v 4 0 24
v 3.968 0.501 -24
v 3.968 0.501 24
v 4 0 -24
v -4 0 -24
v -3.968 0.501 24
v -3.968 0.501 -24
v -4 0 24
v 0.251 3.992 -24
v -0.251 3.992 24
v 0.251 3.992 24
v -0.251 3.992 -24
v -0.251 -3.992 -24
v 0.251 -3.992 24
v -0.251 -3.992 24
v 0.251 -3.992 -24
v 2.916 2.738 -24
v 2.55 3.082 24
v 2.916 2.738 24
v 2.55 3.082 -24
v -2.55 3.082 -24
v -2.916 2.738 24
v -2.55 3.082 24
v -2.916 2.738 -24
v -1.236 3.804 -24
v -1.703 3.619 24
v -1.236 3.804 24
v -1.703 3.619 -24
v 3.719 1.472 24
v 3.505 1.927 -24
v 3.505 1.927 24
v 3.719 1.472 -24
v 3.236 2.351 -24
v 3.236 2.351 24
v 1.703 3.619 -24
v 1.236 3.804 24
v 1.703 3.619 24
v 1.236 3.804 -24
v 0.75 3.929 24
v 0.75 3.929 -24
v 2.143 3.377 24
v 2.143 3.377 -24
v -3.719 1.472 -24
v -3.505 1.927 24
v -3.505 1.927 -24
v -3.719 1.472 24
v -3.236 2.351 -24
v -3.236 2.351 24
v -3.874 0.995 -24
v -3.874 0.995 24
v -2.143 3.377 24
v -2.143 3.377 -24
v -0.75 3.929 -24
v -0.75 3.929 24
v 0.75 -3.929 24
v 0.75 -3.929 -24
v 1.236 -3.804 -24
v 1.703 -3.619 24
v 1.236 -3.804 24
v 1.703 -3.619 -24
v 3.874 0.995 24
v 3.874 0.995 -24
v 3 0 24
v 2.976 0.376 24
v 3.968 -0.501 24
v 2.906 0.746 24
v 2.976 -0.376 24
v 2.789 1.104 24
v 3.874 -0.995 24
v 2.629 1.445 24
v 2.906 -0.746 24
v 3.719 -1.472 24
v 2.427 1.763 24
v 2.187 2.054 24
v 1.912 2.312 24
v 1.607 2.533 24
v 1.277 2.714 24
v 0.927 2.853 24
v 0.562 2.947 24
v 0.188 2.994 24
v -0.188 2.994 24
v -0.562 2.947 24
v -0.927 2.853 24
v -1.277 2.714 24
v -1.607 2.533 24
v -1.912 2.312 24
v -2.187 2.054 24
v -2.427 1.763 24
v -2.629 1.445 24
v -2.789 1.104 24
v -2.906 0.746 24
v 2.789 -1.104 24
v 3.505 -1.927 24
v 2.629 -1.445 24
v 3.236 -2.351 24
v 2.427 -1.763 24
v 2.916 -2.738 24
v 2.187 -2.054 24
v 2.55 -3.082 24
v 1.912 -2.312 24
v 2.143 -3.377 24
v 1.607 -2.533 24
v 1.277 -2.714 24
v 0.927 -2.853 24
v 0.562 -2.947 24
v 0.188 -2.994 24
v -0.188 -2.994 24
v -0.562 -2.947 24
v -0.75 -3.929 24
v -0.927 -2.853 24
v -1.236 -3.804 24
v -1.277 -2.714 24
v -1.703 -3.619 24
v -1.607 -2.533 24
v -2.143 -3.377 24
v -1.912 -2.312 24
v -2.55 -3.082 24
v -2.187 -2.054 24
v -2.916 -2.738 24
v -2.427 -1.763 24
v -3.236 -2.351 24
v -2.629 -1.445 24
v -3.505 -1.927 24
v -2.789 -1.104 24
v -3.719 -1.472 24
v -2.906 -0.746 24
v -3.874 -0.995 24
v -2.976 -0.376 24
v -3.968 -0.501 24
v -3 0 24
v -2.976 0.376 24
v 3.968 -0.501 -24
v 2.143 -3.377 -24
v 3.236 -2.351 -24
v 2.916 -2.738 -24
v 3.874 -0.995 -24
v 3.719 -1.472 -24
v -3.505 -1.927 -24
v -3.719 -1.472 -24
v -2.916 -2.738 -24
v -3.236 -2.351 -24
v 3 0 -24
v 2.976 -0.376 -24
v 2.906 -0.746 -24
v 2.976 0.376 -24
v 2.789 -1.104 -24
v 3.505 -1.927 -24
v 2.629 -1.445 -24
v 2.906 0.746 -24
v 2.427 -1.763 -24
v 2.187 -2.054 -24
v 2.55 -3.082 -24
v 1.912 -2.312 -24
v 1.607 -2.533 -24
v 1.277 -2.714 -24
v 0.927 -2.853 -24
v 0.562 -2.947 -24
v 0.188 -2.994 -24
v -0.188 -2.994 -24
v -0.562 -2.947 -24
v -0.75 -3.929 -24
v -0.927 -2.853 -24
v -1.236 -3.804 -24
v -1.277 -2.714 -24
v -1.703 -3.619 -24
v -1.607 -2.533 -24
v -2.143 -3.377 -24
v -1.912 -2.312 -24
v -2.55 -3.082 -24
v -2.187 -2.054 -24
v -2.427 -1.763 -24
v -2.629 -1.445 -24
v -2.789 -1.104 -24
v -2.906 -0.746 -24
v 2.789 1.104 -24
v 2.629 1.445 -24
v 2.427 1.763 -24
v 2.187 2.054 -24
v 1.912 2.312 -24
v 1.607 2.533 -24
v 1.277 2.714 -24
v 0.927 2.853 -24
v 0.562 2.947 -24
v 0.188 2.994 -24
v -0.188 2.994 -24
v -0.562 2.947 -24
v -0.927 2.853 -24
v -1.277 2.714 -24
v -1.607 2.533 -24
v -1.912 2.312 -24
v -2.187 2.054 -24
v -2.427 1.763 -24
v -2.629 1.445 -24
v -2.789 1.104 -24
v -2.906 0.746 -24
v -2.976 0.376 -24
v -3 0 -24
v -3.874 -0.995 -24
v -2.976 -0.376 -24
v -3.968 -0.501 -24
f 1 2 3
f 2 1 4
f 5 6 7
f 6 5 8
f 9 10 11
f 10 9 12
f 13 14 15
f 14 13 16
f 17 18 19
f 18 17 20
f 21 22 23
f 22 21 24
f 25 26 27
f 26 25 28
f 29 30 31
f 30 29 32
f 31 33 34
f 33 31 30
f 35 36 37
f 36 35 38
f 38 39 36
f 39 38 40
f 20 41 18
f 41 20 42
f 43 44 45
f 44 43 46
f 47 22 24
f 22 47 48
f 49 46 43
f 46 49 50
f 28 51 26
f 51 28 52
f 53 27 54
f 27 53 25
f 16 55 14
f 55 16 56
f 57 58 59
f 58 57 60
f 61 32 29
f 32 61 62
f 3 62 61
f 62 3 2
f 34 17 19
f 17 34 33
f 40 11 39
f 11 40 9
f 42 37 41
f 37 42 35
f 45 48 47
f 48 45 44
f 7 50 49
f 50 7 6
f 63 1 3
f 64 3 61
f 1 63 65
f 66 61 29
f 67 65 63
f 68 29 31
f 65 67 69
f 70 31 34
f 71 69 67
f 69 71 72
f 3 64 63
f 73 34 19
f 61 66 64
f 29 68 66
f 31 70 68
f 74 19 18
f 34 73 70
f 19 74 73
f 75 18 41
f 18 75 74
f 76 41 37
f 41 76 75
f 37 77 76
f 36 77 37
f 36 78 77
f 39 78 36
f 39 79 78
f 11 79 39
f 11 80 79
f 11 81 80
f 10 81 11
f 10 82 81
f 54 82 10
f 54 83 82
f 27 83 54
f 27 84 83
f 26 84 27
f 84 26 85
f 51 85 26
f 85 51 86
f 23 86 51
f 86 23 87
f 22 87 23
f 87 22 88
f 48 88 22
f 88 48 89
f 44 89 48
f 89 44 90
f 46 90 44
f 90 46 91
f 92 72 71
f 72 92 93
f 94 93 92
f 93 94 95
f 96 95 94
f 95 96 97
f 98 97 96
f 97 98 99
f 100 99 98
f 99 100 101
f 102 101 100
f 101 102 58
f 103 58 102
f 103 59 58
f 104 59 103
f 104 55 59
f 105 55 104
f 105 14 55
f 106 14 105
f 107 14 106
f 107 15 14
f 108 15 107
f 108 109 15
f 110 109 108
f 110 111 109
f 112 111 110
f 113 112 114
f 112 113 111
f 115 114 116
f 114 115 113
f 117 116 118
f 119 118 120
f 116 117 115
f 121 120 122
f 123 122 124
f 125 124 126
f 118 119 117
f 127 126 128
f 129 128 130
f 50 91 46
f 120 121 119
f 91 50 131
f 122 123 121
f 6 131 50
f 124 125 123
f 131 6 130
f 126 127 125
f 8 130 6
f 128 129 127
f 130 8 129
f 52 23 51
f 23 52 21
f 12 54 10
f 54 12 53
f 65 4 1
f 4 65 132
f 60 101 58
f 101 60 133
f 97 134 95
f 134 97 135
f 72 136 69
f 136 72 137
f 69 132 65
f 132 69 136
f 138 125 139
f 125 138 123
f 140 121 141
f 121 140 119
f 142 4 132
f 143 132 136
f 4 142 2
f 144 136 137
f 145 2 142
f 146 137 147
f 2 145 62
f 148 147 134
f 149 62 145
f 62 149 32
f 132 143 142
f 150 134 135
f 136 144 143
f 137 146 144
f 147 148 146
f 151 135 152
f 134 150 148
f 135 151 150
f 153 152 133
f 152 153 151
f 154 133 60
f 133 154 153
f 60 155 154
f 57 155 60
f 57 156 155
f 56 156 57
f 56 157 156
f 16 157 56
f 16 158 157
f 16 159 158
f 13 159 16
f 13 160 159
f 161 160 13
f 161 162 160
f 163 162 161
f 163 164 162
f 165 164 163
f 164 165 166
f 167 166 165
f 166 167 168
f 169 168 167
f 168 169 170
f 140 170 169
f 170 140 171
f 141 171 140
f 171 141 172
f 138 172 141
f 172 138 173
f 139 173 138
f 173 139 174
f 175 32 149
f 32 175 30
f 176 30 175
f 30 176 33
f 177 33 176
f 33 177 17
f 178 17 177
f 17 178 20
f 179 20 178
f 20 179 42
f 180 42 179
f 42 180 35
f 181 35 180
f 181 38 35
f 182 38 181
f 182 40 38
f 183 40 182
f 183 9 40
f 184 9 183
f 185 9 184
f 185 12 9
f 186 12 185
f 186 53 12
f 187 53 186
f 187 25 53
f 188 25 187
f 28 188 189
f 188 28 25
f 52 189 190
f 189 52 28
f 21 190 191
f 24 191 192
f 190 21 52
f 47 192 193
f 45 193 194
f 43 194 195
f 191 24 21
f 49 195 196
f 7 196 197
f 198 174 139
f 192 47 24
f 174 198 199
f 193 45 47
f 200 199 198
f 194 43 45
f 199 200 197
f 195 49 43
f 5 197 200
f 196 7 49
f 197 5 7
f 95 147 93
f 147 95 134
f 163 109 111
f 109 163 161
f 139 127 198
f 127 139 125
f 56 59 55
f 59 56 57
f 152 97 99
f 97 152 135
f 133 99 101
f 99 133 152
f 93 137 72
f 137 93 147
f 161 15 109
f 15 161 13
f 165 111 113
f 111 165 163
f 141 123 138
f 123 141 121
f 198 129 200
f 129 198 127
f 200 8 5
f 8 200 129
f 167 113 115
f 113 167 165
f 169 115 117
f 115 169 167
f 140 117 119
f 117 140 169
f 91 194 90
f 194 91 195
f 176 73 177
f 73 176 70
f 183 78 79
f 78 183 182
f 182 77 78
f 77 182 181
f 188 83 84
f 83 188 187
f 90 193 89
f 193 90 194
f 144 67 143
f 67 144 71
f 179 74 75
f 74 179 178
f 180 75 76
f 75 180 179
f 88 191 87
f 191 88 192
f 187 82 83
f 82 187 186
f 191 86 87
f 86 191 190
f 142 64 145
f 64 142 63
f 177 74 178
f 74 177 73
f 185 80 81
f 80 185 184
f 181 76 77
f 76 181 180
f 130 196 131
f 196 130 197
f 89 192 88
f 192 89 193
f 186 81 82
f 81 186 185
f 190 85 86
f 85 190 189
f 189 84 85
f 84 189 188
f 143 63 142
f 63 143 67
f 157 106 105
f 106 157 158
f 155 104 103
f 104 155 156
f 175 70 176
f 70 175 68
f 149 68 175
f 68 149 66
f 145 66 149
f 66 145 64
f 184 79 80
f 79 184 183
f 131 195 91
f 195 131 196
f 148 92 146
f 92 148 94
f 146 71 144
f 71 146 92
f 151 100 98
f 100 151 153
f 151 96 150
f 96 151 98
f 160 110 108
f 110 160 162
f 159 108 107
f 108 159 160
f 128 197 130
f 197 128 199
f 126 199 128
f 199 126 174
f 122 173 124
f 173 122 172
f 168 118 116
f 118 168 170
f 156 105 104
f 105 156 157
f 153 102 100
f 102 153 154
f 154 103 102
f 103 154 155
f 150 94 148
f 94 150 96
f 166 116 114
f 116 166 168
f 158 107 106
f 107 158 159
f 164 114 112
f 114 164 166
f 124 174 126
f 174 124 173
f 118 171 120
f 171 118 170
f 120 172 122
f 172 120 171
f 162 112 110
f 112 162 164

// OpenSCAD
$fn = 50;


difference() {
	union() {
		translate(v = [0, 0, -24.0000000000]) {
			cylinder(h = 48, r = 4.0000000000);
		}
	}
	union() {
		translate(v = [0, 0, -100.0000000000]) {
			cylinder(h = 200, r = 3);
		}
	}
}
